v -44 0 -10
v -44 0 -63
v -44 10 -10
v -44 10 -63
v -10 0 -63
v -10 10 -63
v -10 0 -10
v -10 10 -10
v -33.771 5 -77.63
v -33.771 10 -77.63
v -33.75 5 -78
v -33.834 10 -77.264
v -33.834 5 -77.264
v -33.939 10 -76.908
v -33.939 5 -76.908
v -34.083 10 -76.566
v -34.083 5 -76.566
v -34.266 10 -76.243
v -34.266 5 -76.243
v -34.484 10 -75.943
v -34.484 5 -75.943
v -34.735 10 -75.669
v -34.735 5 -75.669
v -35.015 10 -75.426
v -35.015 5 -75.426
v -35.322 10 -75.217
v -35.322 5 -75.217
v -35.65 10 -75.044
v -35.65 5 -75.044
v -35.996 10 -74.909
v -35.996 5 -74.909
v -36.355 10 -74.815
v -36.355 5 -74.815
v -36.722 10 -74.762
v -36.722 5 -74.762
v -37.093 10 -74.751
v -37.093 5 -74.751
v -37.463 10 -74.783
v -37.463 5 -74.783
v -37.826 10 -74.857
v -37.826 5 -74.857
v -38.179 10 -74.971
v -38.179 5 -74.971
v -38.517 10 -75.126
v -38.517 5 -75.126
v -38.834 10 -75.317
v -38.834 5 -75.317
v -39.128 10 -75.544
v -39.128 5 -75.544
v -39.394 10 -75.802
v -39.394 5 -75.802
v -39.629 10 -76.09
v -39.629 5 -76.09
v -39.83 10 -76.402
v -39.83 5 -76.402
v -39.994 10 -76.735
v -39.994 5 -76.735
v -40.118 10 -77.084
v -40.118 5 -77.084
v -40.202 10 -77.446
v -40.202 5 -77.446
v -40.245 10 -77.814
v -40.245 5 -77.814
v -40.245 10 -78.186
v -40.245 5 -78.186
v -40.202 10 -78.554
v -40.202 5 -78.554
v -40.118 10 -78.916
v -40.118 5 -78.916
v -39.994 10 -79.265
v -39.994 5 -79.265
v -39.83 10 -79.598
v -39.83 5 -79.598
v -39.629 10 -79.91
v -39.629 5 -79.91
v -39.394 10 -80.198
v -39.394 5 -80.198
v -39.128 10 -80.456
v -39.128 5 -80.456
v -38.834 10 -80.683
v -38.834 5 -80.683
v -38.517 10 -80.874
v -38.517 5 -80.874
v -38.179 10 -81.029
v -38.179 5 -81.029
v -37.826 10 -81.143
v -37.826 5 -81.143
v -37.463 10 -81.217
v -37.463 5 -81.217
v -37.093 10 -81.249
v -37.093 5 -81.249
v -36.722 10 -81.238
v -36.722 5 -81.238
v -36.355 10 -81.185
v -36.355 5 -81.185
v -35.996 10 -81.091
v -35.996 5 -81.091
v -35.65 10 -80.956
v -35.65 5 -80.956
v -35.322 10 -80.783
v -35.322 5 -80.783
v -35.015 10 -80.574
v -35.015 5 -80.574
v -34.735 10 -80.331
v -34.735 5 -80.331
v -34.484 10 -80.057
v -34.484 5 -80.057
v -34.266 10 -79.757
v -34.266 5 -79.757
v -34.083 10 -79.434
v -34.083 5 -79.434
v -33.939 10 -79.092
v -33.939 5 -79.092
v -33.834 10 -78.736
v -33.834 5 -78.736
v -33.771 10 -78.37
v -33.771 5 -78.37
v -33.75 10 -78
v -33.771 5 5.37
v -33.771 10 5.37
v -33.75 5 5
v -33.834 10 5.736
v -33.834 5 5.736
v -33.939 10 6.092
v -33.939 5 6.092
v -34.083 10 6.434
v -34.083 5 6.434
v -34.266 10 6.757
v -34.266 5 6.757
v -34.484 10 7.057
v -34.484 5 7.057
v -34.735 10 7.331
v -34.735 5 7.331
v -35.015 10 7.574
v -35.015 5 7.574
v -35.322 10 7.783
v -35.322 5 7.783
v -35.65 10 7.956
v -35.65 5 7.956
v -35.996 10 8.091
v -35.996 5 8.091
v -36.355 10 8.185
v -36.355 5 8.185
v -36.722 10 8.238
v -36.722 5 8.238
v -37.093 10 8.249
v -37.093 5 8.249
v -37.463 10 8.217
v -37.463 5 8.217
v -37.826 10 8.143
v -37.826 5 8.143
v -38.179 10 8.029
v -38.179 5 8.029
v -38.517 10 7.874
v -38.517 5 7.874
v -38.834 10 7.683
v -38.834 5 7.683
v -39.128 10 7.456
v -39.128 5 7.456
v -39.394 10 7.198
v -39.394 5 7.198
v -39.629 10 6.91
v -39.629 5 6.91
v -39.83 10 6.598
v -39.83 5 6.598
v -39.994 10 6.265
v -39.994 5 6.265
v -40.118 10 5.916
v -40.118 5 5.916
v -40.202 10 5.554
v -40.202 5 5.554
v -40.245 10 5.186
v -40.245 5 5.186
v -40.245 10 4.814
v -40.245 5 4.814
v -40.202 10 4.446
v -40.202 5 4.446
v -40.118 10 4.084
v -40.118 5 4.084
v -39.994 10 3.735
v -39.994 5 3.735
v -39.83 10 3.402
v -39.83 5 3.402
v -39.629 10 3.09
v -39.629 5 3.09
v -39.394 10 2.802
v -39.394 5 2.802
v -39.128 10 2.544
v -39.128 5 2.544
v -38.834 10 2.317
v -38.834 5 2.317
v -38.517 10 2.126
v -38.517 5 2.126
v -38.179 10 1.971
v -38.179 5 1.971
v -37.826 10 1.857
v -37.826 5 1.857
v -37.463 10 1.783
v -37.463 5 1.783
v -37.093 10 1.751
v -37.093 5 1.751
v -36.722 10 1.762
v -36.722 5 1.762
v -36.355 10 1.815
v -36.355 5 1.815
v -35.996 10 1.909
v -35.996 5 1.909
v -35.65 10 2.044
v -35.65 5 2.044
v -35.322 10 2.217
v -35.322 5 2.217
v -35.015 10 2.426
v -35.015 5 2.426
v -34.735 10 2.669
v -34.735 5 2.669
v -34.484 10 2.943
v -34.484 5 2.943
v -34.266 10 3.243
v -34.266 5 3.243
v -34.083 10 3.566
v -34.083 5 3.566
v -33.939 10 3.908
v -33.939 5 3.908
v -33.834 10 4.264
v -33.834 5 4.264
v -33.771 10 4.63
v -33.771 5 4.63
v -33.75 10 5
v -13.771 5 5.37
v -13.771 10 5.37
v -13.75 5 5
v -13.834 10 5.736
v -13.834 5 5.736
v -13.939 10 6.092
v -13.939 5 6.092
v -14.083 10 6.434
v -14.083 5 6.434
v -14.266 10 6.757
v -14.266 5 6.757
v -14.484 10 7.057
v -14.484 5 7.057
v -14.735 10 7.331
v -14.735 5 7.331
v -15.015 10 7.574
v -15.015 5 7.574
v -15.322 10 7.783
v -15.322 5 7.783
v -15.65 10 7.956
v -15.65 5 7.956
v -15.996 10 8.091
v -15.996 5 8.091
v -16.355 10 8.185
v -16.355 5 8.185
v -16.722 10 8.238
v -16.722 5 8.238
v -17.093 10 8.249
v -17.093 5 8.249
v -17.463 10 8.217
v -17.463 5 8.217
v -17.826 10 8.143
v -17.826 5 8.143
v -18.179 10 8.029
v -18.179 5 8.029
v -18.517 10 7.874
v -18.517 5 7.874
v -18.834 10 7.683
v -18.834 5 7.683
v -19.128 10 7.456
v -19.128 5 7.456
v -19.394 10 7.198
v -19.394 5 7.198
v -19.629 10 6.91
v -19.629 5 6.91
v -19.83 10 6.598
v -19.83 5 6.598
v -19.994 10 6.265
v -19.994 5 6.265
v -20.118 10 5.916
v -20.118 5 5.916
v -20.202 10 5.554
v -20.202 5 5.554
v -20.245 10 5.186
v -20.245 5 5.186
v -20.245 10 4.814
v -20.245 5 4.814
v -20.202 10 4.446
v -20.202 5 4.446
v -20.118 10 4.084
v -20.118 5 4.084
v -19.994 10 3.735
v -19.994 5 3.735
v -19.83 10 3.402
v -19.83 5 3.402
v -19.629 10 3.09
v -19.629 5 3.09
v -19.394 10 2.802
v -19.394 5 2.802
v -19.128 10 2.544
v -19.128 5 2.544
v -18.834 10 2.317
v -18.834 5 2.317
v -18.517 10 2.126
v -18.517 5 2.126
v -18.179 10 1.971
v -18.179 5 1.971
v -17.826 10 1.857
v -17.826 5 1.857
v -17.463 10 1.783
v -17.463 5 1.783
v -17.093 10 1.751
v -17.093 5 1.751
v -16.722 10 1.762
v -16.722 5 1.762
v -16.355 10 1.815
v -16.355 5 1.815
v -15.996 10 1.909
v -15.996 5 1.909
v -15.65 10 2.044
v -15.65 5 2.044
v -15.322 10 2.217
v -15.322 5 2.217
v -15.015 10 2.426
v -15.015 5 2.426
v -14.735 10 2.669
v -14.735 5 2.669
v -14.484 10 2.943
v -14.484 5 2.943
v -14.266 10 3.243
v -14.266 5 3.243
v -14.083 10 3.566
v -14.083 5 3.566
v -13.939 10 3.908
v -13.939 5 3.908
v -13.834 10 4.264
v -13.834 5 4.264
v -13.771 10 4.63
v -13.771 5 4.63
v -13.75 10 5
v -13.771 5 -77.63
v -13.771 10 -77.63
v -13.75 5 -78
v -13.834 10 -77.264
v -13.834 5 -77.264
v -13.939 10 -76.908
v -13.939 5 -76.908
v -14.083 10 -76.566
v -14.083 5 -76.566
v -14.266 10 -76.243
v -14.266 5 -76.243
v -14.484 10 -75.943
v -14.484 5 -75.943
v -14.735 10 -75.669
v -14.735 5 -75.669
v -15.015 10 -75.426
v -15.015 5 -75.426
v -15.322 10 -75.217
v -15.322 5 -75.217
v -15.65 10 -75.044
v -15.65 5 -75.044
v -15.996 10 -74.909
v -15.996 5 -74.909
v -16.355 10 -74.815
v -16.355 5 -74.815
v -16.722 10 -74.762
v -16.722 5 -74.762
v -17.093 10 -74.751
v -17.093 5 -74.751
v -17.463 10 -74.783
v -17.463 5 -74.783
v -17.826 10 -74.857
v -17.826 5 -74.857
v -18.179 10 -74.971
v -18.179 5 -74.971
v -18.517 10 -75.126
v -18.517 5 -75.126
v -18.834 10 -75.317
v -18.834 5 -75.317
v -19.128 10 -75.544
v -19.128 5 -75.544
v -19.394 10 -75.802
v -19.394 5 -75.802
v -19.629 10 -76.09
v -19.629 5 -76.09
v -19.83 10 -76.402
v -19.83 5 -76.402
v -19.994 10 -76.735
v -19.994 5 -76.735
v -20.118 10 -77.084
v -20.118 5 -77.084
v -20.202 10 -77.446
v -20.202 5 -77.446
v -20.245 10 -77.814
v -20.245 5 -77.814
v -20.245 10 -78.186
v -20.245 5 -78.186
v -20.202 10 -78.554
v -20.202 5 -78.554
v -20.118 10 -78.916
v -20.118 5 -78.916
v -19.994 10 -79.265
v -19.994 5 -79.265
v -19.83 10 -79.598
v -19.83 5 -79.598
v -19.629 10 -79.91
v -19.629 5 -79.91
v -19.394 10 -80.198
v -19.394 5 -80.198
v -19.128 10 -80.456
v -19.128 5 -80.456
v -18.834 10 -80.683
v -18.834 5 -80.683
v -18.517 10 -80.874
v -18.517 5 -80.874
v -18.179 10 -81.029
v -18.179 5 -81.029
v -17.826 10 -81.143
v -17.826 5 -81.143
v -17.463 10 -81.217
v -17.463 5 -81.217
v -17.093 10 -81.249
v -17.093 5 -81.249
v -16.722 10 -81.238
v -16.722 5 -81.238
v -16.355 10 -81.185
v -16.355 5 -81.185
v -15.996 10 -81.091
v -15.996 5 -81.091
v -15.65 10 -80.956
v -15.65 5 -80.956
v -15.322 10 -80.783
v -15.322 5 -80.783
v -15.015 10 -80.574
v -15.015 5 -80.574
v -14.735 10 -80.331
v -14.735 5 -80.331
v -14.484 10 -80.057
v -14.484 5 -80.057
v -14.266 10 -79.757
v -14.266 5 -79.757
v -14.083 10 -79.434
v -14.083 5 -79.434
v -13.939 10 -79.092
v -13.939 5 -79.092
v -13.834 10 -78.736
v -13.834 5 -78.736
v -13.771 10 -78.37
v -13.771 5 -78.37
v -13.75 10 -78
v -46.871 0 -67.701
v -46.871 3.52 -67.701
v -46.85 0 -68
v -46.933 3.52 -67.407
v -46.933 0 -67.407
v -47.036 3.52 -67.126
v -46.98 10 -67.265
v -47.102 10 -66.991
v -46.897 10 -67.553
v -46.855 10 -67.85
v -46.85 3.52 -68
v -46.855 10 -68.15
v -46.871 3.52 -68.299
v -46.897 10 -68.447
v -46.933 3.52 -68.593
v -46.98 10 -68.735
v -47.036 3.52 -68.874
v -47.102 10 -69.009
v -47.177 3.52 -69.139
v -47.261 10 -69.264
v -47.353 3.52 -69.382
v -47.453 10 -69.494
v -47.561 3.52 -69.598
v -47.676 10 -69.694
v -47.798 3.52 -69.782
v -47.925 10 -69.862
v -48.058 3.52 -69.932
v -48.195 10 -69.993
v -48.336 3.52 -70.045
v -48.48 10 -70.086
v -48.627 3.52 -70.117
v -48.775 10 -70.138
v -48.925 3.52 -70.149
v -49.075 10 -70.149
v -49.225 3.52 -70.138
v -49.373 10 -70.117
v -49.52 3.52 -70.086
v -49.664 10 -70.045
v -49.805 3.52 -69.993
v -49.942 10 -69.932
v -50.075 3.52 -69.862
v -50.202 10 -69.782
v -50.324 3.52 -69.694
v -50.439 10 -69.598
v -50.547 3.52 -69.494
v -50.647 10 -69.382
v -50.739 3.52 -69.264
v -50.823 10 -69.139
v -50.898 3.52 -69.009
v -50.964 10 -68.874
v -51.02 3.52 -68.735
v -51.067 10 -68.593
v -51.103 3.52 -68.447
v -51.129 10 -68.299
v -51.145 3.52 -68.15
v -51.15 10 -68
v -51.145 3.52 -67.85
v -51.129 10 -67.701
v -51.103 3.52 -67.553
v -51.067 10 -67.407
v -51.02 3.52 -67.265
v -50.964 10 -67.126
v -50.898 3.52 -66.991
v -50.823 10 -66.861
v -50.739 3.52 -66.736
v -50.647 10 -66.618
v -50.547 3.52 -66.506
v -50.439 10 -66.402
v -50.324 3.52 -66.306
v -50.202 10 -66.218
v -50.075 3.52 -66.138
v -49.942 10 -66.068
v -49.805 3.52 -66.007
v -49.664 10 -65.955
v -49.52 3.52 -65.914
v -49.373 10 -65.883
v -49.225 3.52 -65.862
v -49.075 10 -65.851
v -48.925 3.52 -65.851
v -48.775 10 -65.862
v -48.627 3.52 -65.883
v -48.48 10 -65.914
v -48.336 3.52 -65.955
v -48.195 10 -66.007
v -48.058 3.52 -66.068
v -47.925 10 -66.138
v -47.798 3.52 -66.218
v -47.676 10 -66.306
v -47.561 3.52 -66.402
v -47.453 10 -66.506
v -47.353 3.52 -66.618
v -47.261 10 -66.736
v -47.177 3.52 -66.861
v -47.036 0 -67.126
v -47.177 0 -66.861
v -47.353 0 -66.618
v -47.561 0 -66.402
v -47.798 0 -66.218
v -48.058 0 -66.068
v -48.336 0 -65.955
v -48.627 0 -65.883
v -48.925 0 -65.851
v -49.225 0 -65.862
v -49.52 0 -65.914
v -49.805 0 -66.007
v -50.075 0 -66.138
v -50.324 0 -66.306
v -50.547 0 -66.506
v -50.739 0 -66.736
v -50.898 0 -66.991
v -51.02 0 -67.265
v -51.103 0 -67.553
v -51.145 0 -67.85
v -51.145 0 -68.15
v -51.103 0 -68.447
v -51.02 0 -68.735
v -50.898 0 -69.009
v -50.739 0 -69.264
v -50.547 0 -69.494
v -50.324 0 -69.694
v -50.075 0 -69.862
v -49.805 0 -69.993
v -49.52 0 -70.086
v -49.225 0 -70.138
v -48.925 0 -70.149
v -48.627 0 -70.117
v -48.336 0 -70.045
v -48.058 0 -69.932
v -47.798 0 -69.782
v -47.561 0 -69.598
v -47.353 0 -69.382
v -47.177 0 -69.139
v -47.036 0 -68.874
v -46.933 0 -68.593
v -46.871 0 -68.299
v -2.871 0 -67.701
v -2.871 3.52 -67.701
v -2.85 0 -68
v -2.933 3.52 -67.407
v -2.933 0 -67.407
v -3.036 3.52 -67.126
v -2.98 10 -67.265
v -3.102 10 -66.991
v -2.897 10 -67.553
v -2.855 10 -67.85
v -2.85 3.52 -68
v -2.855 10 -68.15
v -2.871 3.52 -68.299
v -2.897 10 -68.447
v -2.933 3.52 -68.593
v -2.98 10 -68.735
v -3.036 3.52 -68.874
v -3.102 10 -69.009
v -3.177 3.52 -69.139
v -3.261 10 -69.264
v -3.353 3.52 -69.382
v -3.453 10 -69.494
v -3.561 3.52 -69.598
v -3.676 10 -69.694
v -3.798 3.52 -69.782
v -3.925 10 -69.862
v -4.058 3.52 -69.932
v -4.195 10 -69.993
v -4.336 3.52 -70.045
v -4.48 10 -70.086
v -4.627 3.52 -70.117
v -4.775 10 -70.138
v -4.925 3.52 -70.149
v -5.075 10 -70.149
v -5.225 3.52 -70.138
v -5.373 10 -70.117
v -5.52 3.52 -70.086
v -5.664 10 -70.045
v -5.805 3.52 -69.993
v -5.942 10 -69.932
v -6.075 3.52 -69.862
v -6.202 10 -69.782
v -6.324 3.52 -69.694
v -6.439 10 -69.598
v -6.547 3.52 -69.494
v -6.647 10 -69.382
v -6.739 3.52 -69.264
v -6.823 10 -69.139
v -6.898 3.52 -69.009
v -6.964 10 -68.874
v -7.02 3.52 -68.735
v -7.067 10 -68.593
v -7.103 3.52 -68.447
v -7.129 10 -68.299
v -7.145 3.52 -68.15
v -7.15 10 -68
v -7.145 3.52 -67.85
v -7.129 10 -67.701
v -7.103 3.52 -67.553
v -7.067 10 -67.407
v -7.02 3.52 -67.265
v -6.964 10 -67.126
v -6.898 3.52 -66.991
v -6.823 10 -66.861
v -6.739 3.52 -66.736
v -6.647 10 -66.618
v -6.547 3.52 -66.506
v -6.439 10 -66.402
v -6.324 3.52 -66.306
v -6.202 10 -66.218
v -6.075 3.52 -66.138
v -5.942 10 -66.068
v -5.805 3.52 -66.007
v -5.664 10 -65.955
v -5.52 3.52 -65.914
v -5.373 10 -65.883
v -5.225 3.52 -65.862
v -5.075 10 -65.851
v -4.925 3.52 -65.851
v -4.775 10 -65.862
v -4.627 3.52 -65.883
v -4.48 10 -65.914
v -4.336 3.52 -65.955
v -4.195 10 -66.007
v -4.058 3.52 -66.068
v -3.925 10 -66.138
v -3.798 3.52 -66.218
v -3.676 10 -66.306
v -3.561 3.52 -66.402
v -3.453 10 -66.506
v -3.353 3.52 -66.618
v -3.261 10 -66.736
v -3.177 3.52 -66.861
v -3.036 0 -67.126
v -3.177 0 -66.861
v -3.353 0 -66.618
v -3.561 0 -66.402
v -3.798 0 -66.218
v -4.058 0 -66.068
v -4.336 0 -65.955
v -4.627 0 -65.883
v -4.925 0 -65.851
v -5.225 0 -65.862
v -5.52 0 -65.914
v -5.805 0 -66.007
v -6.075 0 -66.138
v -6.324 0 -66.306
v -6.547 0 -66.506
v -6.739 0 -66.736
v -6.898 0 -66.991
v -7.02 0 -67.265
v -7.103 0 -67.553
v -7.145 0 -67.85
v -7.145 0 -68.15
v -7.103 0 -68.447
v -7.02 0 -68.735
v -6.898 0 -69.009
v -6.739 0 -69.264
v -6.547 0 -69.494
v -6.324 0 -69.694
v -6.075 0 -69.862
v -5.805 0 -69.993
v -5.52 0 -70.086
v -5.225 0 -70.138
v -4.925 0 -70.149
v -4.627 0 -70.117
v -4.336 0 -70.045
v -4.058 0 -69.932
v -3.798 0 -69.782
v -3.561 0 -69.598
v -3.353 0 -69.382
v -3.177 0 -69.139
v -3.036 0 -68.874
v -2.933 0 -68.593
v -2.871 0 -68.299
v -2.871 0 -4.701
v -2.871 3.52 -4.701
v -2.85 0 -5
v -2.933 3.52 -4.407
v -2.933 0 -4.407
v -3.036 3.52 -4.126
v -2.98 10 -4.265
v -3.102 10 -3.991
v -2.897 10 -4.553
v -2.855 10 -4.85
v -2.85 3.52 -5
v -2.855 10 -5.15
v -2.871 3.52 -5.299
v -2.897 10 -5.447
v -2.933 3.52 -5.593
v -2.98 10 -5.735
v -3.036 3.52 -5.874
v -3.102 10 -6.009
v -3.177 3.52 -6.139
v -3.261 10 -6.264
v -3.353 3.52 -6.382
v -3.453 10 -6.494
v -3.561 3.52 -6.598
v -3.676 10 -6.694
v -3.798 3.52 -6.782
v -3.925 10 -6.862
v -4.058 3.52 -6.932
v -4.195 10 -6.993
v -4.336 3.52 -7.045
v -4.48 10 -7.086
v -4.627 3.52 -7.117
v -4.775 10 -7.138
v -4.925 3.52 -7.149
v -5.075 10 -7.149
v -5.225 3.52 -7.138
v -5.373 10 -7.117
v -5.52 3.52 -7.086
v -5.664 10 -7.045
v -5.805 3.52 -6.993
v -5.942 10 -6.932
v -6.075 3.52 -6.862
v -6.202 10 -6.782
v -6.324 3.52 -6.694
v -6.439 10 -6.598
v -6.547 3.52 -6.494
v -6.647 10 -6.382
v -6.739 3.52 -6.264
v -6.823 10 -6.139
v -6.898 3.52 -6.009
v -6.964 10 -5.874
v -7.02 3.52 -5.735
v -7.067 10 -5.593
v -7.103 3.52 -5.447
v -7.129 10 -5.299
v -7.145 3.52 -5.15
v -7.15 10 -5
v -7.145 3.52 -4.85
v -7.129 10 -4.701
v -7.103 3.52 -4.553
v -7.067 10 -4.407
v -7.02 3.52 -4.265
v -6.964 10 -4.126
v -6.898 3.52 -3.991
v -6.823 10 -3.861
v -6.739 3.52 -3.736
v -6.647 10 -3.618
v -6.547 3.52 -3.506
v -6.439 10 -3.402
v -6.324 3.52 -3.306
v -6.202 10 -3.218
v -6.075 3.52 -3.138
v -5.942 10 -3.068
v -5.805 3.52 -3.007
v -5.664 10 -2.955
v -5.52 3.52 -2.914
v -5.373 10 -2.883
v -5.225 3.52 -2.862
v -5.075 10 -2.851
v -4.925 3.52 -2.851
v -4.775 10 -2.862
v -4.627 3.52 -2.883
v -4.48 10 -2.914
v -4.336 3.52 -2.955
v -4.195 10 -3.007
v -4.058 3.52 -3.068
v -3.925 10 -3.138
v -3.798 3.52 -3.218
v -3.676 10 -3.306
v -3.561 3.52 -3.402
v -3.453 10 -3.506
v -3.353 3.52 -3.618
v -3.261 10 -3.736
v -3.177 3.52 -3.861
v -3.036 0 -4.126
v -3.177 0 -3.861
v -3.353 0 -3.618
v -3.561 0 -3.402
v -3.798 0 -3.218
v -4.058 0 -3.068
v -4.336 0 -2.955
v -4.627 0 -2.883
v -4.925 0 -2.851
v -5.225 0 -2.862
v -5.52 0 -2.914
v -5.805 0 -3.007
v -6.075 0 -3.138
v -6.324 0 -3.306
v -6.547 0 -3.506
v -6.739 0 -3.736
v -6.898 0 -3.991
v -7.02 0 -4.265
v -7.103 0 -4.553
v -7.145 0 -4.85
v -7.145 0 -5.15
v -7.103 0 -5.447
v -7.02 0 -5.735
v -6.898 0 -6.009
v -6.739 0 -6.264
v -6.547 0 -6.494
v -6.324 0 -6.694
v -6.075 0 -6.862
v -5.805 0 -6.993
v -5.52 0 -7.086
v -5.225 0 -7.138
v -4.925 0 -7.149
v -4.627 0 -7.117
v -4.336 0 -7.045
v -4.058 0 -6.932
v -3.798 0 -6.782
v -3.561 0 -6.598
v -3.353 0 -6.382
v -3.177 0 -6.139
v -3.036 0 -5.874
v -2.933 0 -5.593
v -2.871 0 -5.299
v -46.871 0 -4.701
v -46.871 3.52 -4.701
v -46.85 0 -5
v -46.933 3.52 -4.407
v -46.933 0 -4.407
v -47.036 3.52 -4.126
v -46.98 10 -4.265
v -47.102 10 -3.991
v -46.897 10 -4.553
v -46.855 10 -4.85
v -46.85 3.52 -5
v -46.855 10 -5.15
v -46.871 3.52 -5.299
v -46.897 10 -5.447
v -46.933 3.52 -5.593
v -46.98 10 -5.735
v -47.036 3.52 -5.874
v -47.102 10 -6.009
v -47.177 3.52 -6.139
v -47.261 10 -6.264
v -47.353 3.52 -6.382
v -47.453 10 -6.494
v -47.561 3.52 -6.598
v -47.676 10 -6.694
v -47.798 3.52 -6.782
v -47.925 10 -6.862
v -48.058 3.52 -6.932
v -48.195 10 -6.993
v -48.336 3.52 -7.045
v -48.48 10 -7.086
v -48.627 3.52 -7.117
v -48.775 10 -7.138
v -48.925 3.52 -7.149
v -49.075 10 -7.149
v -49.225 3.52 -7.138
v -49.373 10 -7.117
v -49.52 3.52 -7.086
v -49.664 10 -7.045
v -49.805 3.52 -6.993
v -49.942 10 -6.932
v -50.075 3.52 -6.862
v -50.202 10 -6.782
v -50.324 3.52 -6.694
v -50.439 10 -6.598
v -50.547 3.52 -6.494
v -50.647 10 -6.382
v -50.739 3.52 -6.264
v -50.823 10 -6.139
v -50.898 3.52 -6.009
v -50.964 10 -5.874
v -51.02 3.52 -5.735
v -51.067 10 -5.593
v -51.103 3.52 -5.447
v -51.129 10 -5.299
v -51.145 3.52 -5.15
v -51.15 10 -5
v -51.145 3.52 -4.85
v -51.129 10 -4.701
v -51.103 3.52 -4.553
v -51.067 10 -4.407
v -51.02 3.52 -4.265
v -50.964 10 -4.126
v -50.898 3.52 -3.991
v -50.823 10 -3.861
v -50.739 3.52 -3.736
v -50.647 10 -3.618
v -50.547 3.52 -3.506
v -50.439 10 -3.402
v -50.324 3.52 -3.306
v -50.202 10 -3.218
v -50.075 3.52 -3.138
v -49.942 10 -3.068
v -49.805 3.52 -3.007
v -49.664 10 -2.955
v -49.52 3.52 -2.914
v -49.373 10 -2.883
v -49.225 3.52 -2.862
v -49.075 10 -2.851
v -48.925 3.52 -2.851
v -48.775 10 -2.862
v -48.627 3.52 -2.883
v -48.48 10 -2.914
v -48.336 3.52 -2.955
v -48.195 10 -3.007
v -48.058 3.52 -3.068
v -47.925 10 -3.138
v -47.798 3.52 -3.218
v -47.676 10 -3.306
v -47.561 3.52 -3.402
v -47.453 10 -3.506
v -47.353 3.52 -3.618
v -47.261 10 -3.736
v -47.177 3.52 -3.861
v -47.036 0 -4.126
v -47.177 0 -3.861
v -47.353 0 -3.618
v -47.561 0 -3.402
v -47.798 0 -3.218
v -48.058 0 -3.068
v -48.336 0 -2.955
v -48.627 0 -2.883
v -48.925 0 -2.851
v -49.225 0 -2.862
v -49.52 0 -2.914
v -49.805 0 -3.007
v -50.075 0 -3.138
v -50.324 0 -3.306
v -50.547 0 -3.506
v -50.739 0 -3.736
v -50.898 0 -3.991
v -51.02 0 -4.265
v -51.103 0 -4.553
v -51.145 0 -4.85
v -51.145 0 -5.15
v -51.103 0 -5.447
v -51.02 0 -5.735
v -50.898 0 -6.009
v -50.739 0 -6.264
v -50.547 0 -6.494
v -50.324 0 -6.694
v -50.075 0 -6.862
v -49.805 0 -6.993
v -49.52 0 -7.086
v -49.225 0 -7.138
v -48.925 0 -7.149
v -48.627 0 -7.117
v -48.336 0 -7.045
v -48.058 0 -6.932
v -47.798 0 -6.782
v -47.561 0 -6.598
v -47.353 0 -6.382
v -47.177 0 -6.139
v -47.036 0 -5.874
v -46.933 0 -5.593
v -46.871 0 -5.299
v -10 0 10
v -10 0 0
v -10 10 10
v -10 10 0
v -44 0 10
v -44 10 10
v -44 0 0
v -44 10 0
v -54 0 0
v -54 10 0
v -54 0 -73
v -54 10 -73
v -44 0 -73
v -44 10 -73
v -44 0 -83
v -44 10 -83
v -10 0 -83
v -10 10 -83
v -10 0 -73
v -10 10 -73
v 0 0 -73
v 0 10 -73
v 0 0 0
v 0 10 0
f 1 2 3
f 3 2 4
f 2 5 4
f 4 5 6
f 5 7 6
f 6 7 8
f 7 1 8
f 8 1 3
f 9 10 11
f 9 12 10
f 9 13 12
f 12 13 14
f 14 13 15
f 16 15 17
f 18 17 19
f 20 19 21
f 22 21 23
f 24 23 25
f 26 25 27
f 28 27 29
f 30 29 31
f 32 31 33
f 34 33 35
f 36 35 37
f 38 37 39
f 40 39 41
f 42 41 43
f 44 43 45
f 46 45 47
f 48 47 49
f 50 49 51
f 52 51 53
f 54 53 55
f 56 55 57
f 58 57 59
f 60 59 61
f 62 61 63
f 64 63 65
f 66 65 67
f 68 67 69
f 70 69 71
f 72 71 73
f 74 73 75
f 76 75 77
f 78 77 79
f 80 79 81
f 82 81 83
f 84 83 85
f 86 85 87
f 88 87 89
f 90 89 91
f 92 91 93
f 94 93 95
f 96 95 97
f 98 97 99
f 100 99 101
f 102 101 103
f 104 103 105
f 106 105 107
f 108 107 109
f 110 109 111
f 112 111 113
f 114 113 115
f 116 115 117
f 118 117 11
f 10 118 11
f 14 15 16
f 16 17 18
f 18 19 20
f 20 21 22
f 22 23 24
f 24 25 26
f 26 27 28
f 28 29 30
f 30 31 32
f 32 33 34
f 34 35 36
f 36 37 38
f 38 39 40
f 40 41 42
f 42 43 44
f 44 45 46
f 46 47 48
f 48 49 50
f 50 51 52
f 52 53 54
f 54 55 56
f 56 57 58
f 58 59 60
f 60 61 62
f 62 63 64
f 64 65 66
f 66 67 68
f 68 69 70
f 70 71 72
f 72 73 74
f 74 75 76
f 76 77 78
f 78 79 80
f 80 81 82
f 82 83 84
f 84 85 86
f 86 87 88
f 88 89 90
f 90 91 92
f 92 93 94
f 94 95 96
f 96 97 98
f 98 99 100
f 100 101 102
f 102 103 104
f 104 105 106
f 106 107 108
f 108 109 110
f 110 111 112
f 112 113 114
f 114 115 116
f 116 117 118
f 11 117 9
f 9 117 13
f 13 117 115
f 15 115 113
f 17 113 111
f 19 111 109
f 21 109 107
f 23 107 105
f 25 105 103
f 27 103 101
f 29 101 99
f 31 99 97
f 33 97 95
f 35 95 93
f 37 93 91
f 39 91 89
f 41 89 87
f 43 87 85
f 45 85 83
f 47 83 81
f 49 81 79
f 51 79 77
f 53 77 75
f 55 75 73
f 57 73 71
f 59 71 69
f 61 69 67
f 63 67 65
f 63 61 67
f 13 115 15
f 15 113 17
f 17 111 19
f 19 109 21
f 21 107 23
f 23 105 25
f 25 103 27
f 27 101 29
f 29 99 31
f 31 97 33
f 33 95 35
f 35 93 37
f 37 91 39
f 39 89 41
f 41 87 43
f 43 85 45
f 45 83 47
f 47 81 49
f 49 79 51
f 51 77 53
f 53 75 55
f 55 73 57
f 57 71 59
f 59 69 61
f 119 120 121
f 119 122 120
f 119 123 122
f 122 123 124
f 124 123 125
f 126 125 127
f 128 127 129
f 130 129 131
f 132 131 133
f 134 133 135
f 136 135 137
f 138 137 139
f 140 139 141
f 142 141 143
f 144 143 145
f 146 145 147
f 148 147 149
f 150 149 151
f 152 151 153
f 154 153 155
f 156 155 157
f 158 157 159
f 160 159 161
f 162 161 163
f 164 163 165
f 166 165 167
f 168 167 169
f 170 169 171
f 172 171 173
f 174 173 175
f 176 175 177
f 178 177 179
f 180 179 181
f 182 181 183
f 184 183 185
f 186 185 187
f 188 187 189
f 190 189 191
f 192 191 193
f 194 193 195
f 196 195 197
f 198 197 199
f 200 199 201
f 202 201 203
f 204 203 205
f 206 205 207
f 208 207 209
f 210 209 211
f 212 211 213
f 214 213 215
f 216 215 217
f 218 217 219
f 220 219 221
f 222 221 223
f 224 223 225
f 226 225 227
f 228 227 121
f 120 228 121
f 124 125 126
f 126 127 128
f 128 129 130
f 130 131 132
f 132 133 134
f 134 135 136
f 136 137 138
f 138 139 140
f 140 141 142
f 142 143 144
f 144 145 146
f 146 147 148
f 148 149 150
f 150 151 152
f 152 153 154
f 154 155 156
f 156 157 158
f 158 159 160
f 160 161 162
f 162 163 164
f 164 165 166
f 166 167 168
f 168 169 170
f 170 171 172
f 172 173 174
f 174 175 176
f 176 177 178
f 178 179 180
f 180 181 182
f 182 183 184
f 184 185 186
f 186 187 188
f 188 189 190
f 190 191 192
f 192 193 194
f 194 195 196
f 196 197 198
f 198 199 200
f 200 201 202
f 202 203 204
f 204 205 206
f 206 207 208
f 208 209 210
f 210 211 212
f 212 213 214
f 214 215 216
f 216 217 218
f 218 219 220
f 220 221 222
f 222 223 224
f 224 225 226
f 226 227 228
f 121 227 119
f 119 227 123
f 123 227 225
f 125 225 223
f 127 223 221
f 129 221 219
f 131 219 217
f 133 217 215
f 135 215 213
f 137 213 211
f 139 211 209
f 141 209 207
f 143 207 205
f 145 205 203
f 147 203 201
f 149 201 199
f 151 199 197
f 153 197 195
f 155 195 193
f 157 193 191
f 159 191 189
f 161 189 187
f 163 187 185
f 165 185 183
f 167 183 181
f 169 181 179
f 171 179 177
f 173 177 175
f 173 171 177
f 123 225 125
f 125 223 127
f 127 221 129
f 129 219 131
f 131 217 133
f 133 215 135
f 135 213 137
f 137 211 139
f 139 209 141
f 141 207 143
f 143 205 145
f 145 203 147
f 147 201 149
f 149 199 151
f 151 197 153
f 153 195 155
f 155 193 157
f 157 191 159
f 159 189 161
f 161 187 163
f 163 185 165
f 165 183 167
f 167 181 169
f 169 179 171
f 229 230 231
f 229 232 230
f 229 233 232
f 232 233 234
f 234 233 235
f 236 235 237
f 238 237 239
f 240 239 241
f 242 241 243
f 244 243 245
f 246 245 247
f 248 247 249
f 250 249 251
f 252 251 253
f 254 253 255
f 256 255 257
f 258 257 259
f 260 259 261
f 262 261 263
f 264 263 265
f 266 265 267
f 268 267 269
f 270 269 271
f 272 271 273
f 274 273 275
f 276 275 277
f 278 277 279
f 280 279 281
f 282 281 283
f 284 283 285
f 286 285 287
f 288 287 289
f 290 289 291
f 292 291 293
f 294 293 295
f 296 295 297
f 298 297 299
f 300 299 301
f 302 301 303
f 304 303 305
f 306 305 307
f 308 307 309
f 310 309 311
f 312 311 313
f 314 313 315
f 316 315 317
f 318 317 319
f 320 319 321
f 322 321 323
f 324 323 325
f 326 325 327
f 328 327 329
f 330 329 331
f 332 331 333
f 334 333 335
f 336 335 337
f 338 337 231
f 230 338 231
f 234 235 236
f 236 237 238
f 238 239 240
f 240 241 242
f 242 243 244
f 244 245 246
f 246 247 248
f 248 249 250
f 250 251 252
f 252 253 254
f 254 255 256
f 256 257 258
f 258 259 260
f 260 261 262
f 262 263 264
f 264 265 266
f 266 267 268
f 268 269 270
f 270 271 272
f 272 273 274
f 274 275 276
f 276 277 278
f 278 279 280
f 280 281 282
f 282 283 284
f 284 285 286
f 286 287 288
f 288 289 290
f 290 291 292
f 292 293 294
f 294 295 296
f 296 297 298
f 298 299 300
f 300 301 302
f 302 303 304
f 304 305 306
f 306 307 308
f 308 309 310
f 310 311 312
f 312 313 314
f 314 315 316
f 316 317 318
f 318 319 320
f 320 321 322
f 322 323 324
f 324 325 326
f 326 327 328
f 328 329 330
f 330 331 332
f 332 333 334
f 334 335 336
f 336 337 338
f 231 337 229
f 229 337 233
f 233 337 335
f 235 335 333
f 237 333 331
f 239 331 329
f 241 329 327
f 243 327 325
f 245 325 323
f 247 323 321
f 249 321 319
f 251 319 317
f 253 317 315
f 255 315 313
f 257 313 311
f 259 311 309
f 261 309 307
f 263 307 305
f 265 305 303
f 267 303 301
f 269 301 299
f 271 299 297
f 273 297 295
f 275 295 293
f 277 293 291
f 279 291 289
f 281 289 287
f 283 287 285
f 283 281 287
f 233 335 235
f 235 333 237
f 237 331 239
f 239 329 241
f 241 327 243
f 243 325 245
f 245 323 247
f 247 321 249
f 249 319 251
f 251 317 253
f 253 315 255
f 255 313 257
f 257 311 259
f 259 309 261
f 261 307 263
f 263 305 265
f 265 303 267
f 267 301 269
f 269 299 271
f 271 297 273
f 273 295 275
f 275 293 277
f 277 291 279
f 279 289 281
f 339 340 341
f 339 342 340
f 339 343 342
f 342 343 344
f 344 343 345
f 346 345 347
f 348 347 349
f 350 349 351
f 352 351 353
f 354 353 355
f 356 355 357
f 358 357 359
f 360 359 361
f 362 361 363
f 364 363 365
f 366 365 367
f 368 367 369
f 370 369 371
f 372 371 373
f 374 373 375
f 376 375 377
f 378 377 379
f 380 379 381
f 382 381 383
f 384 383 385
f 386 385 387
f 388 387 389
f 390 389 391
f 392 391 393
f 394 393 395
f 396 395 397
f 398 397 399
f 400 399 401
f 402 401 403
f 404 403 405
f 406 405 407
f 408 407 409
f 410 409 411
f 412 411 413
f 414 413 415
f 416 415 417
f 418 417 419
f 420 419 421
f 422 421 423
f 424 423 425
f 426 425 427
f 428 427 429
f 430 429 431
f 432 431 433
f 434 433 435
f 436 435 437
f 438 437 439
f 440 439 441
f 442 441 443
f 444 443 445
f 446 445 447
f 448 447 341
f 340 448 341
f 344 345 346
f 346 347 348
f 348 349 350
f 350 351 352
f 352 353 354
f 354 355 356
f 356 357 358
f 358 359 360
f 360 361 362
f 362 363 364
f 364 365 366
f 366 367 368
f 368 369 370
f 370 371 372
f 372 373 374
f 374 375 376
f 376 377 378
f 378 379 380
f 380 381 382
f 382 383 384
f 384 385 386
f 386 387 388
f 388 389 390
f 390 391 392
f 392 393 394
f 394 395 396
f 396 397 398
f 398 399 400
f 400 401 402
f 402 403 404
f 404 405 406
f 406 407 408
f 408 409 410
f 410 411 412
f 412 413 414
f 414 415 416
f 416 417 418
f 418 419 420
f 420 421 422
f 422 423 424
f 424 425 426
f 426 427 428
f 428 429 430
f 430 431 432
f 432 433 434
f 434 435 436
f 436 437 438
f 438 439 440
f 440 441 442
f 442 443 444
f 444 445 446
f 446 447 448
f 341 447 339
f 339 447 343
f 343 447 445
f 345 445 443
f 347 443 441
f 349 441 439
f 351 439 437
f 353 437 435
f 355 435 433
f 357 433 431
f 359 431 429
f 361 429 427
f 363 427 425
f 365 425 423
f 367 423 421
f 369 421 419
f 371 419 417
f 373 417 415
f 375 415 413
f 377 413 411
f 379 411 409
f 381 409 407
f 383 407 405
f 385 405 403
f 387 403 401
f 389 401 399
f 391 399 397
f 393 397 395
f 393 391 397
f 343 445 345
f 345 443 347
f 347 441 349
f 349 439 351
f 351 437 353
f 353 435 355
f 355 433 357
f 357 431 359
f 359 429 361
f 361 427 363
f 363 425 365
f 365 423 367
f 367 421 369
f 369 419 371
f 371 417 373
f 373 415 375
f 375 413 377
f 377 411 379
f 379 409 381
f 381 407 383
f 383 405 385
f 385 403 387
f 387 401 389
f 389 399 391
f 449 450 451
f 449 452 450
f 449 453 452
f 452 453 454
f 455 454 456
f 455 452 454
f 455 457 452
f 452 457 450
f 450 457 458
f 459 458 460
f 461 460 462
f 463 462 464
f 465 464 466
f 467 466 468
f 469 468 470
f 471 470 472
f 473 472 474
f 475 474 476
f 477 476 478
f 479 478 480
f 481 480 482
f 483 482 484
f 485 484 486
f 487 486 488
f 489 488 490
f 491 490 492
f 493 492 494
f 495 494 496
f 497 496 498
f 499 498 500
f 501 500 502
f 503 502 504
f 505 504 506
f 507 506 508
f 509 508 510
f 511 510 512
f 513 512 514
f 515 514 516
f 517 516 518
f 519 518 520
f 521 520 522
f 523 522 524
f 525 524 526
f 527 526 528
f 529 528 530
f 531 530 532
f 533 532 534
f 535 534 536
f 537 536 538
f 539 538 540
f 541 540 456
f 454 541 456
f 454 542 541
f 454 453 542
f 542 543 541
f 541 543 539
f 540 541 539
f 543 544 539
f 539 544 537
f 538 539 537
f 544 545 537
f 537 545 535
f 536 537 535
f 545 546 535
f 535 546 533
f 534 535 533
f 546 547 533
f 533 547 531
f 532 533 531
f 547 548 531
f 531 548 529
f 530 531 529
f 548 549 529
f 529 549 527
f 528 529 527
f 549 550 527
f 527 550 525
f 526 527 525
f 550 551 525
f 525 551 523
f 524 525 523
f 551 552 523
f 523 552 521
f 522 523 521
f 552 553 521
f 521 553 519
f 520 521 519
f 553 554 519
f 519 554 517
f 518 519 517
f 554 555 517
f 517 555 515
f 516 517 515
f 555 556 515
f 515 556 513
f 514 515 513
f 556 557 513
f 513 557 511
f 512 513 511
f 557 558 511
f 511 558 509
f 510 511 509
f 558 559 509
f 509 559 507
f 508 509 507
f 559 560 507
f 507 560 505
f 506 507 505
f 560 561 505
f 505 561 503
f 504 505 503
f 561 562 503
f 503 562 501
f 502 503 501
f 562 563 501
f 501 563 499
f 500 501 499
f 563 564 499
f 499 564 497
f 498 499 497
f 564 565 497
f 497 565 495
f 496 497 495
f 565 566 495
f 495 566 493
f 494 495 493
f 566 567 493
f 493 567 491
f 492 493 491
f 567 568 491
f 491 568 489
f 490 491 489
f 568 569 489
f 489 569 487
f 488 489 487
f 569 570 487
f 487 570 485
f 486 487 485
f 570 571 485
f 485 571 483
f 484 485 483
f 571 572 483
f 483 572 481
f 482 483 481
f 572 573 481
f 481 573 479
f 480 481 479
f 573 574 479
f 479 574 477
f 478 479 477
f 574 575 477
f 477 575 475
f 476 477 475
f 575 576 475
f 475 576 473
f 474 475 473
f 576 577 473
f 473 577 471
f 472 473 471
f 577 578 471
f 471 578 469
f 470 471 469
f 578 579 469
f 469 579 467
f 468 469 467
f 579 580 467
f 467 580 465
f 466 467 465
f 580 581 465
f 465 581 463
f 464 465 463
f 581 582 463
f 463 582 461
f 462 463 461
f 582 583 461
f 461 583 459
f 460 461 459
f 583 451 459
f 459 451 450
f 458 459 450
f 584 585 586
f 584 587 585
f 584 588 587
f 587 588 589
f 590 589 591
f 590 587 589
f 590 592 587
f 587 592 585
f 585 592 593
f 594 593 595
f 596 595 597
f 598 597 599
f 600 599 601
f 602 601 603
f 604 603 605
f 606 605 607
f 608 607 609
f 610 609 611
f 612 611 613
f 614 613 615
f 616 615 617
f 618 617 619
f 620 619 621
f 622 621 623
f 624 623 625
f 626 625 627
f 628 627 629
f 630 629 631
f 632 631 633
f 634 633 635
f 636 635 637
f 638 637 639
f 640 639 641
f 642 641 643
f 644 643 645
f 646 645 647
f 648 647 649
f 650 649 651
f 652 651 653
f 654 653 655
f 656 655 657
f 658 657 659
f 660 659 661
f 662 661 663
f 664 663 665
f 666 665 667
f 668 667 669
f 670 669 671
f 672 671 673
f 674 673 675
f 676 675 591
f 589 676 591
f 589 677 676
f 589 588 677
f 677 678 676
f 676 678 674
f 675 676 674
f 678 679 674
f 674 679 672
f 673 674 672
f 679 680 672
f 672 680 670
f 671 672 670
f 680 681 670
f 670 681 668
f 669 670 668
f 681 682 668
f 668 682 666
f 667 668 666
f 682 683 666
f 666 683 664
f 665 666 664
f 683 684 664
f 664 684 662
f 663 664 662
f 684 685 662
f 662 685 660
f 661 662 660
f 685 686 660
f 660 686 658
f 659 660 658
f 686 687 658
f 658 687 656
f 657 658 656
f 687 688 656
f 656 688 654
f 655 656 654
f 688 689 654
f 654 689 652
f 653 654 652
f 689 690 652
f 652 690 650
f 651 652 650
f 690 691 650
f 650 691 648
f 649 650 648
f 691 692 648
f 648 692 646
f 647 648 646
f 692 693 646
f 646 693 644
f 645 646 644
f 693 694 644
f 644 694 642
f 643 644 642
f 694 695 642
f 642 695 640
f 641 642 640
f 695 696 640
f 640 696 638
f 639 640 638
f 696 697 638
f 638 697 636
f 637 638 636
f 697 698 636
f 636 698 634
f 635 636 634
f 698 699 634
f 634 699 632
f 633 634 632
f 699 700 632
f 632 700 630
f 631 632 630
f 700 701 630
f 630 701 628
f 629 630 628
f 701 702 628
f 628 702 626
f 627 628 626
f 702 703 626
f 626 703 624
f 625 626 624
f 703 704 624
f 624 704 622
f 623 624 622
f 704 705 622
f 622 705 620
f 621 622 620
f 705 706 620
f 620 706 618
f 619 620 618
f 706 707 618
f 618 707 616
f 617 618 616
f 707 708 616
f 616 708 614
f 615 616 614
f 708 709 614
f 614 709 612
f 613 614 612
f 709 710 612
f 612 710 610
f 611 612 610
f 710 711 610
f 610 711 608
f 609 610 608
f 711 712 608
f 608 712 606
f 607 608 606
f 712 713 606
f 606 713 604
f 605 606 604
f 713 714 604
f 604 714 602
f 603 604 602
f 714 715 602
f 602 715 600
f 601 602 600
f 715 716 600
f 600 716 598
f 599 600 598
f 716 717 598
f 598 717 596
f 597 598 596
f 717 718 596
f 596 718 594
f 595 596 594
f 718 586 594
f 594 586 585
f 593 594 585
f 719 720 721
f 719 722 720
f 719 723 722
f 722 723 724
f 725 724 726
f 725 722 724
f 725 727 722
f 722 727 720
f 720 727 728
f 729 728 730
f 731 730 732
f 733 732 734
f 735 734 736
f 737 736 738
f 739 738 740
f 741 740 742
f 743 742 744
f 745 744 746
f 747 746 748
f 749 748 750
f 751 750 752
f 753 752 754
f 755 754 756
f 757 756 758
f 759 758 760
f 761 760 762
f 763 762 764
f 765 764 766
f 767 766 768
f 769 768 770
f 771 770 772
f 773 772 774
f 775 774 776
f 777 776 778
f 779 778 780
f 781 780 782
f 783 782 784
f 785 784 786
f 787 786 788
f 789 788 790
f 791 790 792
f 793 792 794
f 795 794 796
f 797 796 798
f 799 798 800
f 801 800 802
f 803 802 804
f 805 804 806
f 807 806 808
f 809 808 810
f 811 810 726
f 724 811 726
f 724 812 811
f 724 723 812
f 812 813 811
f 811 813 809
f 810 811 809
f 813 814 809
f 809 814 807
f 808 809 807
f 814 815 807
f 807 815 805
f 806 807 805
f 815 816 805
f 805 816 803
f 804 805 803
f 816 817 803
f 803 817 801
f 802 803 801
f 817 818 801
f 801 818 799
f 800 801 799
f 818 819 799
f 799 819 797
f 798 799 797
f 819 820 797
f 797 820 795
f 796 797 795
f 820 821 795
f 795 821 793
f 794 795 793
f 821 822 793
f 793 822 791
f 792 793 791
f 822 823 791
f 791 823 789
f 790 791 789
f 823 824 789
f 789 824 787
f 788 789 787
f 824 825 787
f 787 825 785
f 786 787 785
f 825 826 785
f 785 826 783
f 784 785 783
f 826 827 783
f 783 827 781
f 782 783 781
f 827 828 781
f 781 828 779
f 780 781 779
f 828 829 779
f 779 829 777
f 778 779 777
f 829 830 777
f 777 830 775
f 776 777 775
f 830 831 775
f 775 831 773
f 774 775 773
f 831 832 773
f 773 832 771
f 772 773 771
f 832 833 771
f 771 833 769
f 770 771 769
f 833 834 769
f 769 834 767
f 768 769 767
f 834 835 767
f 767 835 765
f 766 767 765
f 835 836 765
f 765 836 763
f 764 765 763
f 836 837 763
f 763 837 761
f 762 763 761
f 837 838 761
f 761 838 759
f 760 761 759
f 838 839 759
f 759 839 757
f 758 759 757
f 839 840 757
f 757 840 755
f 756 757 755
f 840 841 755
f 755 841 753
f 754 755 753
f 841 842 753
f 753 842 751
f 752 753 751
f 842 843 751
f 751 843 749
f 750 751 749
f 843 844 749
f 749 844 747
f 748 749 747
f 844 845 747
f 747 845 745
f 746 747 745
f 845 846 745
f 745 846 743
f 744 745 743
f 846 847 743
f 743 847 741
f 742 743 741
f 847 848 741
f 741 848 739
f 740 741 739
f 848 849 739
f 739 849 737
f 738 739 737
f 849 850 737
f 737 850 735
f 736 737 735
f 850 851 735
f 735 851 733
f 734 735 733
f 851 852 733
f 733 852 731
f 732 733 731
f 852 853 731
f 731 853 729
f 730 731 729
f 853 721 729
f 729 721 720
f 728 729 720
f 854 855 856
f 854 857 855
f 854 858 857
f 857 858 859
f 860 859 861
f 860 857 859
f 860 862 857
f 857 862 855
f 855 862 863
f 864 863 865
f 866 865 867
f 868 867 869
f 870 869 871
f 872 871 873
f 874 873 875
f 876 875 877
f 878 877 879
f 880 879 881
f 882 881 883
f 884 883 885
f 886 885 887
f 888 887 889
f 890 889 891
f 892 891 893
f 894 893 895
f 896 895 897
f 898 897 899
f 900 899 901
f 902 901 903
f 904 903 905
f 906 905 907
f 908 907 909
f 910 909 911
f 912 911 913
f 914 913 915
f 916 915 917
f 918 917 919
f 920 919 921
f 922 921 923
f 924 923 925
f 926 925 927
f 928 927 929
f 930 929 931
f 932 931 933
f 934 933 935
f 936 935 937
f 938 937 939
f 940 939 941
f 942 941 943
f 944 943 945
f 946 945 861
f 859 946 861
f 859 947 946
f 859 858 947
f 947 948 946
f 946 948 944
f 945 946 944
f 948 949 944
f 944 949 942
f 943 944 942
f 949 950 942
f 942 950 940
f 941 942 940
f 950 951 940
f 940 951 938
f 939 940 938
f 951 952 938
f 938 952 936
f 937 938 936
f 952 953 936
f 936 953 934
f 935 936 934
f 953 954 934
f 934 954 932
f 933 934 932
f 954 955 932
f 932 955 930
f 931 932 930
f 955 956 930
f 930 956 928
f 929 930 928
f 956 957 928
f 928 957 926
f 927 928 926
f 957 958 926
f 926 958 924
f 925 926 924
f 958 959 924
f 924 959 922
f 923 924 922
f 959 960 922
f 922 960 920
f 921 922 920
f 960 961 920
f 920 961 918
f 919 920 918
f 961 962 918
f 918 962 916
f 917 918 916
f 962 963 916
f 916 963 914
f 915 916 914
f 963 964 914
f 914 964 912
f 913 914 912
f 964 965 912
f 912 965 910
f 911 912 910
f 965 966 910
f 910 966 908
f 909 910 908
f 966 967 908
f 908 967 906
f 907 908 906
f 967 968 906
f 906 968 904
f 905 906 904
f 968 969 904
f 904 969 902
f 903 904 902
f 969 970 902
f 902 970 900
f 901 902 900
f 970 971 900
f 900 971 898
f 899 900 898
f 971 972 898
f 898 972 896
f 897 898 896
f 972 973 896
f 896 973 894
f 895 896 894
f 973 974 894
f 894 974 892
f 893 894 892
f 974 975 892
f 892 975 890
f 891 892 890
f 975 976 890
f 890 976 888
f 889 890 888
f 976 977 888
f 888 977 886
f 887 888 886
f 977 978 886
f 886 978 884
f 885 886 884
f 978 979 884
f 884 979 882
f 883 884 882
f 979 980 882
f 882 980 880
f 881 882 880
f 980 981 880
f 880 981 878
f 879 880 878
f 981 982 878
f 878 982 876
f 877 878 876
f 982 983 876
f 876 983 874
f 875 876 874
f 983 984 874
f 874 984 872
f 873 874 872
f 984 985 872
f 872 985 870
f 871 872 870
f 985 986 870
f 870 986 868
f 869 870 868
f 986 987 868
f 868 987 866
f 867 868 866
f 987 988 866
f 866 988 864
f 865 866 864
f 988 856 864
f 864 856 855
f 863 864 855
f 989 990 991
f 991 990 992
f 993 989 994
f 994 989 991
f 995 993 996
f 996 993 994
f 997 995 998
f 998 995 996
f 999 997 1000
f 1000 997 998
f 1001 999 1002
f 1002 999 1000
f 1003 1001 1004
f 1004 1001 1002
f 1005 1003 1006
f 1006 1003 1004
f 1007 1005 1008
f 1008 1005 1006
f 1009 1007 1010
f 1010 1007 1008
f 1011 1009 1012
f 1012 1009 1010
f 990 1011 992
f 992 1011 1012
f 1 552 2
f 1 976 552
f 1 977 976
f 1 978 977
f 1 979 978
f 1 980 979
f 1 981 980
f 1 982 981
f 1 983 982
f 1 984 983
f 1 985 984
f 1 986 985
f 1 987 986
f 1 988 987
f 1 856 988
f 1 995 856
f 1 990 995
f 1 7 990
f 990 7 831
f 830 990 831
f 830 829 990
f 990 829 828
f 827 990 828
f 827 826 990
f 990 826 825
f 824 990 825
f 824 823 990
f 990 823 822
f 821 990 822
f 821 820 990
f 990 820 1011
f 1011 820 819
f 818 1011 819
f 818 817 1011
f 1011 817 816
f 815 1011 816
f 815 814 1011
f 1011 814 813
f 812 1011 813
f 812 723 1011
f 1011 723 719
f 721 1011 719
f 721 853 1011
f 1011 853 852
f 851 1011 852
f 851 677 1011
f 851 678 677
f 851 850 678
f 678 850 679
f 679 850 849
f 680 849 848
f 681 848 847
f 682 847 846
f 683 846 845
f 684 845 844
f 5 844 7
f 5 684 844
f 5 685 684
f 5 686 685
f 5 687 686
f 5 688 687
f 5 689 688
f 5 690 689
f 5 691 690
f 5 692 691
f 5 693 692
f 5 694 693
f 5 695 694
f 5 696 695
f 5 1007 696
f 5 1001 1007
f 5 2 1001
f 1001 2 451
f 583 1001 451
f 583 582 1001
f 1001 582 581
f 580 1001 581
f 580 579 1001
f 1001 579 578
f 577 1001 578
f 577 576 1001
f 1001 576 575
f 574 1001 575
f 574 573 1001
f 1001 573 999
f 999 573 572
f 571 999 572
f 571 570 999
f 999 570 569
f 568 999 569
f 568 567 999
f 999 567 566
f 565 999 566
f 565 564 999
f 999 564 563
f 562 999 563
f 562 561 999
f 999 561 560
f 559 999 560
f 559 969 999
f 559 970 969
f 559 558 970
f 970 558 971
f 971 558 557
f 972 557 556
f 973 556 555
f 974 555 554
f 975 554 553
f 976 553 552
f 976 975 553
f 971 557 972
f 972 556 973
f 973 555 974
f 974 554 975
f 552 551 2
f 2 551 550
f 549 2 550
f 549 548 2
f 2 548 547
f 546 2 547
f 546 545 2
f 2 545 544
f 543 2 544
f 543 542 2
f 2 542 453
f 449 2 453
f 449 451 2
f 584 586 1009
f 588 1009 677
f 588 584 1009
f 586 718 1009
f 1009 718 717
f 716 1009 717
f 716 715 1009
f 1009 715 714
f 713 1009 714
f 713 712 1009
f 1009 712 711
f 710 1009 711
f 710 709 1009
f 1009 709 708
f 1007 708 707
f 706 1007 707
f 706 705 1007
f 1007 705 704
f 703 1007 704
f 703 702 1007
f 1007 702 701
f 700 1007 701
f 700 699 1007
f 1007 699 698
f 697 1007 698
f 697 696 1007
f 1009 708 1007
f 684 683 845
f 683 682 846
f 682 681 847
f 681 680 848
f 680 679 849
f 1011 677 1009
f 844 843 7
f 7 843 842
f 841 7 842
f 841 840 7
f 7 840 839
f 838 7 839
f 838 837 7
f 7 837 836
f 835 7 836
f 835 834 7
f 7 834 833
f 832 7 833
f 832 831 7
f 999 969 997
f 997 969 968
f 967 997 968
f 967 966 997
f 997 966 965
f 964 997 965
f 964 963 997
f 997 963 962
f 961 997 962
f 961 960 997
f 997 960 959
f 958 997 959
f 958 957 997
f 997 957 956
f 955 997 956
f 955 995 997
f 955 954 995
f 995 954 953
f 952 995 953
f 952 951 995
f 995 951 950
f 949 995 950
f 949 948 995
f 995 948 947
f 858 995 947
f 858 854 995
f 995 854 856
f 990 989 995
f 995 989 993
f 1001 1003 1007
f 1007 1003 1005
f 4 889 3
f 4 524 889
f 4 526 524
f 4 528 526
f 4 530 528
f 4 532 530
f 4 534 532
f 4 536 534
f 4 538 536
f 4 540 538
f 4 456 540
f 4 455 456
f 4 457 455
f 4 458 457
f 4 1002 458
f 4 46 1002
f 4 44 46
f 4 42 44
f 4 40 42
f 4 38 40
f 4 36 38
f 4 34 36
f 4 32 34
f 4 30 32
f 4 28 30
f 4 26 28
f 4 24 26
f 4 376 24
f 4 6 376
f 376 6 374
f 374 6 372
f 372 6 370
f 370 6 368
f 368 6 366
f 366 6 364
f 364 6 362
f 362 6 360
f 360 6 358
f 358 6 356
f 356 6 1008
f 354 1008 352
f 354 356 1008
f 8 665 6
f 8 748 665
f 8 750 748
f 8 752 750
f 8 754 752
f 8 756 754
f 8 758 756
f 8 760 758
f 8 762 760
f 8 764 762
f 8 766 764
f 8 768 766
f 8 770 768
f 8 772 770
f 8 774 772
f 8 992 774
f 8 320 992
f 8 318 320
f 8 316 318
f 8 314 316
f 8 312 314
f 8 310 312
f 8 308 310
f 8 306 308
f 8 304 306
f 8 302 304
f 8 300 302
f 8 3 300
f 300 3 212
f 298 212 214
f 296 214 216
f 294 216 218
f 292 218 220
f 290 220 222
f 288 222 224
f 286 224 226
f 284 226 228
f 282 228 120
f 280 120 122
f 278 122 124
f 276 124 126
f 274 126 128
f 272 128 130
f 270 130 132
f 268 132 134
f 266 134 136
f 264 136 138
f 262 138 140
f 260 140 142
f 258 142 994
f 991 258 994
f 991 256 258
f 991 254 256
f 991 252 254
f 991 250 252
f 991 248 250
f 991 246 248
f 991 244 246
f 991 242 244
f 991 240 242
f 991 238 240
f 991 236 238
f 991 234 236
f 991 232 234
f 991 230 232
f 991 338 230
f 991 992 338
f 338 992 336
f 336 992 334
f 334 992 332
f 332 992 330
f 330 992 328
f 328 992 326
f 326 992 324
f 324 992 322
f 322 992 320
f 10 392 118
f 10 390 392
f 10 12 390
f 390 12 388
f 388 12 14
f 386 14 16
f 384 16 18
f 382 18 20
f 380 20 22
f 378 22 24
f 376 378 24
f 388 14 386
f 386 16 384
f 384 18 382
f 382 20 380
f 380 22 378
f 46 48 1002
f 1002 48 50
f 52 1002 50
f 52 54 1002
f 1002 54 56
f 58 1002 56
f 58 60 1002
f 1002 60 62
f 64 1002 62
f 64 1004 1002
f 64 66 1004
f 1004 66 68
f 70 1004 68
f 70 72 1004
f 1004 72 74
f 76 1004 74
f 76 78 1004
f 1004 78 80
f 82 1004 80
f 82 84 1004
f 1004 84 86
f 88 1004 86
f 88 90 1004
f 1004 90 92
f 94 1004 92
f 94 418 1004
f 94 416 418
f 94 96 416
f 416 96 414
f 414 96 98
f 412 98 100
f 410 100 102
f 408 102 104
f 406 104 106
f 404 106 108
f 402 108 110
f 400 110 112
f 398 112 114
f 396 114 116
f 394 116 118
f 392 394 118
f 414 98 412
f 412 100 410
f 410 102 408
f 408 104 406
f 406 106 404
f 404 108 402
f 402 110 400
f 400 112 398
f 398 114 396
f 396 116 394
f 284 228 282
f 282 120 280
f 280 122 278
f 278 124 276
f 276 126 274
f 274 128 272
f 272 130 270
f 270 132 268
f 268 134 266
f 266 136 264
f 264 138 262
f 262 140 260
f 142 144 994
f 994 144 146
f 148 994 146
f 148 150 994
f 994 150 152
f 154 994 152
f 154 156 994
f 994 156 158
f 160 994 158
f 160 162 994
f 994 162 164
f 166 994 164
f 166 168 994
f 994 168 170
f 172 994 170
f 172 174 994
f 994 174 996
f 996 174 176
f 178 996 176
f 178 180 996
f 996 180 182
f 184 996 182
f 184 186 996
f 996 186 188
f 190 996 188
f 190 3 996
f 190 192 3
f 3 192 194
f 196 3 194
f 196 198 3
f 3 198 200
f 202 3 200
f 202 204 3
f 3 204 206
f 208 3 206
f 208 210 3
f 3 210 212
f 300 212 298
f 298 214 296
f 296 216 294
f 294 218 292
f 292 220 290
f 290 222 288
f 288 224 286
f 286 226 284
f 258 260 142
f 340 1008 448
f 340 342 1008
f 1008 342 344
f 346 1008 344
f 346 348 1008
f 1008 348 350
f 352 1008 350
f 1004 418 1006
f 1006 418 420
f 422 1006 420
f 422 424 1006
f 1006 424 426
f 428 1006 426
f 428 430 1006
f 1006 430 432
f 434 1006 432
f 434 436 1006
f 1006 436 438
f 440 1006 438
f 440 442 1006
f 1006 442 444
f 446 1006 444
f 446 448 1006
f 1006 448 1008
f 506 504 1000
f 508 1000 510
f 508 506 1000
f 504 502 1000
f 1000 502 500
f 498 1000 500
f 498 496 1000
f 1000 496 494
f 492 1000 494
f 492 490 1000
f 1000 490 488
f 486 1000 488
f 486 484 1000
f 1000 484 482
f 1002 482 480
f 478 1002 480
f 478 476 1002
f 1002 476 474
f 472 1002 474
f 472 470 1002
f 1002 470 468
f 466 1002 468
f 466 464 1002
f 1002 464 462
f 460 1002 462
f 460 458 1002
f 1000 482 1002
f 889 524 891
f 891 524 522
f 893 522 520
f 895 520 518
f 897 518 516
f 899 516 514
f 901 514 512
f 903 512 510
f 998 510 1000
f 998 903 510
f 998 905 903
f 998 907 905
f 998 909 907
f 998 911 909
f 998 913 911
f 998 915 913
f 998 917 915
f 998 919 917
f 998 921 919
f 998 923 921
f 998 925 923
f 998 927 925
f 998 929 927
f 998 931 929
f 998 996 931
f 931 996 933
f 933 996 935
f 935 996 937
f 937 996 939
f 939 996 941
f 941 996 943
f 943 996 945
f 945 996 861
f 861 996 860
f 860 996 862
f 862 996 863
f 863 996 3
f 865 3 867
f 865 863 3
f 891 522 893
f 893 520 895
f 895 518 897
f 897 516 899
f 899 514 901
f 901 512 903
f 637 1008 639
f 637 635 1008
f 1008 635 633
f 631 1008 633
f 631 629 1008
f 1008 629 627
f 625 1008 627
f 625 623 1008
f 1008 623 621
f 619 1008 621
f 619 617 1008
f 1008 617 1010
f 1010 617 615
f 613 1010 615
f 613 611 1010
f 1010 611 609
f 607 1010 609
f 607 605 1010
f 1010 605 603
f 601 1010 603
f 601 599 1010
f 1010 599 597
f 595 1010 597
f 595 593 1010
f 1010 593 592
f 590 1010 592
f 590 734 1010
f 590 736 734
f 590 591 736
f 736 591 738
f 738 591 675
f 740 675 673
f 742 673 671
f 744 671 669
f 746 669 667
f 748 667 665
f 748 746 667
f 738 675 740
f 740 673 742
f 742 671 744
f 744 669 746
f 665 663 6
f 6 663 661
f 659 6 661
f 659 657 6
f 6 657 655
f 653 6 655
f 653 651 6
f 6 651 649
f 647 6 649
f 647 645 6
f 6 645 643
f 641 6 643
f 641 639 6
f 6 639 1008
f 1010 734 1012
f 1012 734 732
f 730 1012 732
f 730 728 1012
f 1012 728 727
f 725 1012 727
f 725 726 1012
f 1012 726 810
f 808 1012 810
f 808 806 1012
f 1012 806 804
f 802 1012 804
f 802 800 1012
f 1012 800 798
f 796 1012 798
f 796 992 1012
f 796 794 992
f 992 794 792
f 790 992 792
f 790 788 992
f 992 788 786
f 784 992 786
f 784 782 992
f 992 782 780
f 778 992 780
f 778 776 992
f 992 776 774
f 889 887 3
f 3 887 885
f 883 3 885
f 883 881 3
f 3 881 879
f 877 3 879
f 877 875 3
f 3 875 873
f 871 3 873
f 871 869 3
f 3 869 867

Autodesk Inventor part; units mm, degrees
ref_plane "YZ Plane" through (0, 0, 0) normal (1, 0, 0) x (0, 1, 0)
ref_plane "XZ Plane" through (0, 0, 0) normal (0, 1, 0) x (-1, 0, 0)
ref_plane "XY Plane" through (0, 0, 0) normal (0, 0, 1) x (1, 0, 0)
sketch "Sketch1" plane through (0, 0, 0) normal (0, 1, 0) x (-1, 0, 0)
  line L0 (0, 0) -> (10, 0)
  line L1 (10, 0) -> (10, 10)
  line L2 (10, 10) -> (44, 10)
  line L3 (44, 10) -> (44, 0)
  line L4 (44, 0) -> (54, 0)
  line L5 (54, 0) -> (54, -73)
  line L6 (54, -73) -> (44, -73)
  line L7 (44, -73) -> (44, -83)
  line L8 (44, -83) -> (10, -83)
  line L9 (10, -83) -> (10, -73)
  line L10 (10, -73) -> (0, -73)
  line L11 (0, -73) -> (0, 0)
  dimension "d9" = 73
  dimension "d10" = 54
  dimension "thickness" = 10
  dimension "t" = 10
  dimension "d13" = 10
  dimension "d14" = 10
  dimension "d15" = 10
  dimension "d16" = 10
  dimension "d17" = 10
extrude "Extrusion1" add sketch "Sketch1" along normal blind 10
hole "Hole1" at (-49, 10, -5) direction (0, -1, 0) diameter 4.3 end through all
hole "Hole2" at (-5, 10, -5) direction (0, -1, 0) diameter 4.3 end through all
hole "Hole3" at (-5, 10, -68) direction (0, -1, 0) diameter 4.3 end through all
hole "Hole4" at (-49, 10, -68) direction (0, -1, 0) diameter 4.3 end through all
sketch "Sketch2" plane through (0, 10, 0) normal (0, 1, 0) x (1, 0, 0)
  circle A0 centre (-37, -5) radius 3.25
  circle A1 centre (-17, -5) radius 3.25
  circle A2 centre (-37, 78) radius 3.25
  circle A3 centre (-17, 78) radius 3.25
  line L0 (-44, -10) -> (-10, -10) projected
  line L1 (-10, 83) -> (-44, 83) projected
  line L2 (-44, 0) -> (-44, -10) projected
  line L3 (-10, -10) -> (-10, 0) projected
  line L4 (-10, 73) -> (-10, 83) projected
  line L5 (-44, 83) -> (-44, 73) projected
  point P0 (0, 0)
  dimension "d56" = 6.5
  dimension "d57" = 6.5
  dimension "d58" = 6.5
  dimension "d59" = 6.5
  dimension "d60" = 5
  dimension "d61" = 5
  dimension "d62" = 5
  dimension "d63" = 5
  dimension "d64" = 7
  dimension "d65" = 7
  dimension "d66" = 7
  dimension "d67" = 7
extrude "Extrusion2" cut sketch "Sketch2" against normal blind 5
sketch "Sketch3" plane through (0, 0, 0) normal (0, -1, 0) x (1, 0, 0)
  line L0 (-44, -10) -> (-10, -10)
  line L1 (-10, -10) -> (-10, -63)
  line L2 (-10, -63) -> (-44, -63)
  line L3 (-44, -63) -> (-44, -10)
  line L4 (-10, 10) -> (-44, 10) projected
  line L5 (-44, -83) -> (-10, -83) projected
  line L6 (0, -73) -> (0, 0) projected
  line L7 (-54, 0) -> (-54, -73) projected
  dimension "d70" = 20
  dimension "d71" = 20
  dimension "d72" = 10
  dimension "d73" = 10
extrude "Extrusion3" cut sketch "Sketch3" against normal blind 10
equation "\"thickness\" = t"
equation "\"d13\" = t"
equation "\"d14\" = t"
equation "\"d15\" = t"
equation "\"d16\" = t"
equation "\"d17\" = t"
equation "\"d18\" = t"
properties part number "backFrame"
